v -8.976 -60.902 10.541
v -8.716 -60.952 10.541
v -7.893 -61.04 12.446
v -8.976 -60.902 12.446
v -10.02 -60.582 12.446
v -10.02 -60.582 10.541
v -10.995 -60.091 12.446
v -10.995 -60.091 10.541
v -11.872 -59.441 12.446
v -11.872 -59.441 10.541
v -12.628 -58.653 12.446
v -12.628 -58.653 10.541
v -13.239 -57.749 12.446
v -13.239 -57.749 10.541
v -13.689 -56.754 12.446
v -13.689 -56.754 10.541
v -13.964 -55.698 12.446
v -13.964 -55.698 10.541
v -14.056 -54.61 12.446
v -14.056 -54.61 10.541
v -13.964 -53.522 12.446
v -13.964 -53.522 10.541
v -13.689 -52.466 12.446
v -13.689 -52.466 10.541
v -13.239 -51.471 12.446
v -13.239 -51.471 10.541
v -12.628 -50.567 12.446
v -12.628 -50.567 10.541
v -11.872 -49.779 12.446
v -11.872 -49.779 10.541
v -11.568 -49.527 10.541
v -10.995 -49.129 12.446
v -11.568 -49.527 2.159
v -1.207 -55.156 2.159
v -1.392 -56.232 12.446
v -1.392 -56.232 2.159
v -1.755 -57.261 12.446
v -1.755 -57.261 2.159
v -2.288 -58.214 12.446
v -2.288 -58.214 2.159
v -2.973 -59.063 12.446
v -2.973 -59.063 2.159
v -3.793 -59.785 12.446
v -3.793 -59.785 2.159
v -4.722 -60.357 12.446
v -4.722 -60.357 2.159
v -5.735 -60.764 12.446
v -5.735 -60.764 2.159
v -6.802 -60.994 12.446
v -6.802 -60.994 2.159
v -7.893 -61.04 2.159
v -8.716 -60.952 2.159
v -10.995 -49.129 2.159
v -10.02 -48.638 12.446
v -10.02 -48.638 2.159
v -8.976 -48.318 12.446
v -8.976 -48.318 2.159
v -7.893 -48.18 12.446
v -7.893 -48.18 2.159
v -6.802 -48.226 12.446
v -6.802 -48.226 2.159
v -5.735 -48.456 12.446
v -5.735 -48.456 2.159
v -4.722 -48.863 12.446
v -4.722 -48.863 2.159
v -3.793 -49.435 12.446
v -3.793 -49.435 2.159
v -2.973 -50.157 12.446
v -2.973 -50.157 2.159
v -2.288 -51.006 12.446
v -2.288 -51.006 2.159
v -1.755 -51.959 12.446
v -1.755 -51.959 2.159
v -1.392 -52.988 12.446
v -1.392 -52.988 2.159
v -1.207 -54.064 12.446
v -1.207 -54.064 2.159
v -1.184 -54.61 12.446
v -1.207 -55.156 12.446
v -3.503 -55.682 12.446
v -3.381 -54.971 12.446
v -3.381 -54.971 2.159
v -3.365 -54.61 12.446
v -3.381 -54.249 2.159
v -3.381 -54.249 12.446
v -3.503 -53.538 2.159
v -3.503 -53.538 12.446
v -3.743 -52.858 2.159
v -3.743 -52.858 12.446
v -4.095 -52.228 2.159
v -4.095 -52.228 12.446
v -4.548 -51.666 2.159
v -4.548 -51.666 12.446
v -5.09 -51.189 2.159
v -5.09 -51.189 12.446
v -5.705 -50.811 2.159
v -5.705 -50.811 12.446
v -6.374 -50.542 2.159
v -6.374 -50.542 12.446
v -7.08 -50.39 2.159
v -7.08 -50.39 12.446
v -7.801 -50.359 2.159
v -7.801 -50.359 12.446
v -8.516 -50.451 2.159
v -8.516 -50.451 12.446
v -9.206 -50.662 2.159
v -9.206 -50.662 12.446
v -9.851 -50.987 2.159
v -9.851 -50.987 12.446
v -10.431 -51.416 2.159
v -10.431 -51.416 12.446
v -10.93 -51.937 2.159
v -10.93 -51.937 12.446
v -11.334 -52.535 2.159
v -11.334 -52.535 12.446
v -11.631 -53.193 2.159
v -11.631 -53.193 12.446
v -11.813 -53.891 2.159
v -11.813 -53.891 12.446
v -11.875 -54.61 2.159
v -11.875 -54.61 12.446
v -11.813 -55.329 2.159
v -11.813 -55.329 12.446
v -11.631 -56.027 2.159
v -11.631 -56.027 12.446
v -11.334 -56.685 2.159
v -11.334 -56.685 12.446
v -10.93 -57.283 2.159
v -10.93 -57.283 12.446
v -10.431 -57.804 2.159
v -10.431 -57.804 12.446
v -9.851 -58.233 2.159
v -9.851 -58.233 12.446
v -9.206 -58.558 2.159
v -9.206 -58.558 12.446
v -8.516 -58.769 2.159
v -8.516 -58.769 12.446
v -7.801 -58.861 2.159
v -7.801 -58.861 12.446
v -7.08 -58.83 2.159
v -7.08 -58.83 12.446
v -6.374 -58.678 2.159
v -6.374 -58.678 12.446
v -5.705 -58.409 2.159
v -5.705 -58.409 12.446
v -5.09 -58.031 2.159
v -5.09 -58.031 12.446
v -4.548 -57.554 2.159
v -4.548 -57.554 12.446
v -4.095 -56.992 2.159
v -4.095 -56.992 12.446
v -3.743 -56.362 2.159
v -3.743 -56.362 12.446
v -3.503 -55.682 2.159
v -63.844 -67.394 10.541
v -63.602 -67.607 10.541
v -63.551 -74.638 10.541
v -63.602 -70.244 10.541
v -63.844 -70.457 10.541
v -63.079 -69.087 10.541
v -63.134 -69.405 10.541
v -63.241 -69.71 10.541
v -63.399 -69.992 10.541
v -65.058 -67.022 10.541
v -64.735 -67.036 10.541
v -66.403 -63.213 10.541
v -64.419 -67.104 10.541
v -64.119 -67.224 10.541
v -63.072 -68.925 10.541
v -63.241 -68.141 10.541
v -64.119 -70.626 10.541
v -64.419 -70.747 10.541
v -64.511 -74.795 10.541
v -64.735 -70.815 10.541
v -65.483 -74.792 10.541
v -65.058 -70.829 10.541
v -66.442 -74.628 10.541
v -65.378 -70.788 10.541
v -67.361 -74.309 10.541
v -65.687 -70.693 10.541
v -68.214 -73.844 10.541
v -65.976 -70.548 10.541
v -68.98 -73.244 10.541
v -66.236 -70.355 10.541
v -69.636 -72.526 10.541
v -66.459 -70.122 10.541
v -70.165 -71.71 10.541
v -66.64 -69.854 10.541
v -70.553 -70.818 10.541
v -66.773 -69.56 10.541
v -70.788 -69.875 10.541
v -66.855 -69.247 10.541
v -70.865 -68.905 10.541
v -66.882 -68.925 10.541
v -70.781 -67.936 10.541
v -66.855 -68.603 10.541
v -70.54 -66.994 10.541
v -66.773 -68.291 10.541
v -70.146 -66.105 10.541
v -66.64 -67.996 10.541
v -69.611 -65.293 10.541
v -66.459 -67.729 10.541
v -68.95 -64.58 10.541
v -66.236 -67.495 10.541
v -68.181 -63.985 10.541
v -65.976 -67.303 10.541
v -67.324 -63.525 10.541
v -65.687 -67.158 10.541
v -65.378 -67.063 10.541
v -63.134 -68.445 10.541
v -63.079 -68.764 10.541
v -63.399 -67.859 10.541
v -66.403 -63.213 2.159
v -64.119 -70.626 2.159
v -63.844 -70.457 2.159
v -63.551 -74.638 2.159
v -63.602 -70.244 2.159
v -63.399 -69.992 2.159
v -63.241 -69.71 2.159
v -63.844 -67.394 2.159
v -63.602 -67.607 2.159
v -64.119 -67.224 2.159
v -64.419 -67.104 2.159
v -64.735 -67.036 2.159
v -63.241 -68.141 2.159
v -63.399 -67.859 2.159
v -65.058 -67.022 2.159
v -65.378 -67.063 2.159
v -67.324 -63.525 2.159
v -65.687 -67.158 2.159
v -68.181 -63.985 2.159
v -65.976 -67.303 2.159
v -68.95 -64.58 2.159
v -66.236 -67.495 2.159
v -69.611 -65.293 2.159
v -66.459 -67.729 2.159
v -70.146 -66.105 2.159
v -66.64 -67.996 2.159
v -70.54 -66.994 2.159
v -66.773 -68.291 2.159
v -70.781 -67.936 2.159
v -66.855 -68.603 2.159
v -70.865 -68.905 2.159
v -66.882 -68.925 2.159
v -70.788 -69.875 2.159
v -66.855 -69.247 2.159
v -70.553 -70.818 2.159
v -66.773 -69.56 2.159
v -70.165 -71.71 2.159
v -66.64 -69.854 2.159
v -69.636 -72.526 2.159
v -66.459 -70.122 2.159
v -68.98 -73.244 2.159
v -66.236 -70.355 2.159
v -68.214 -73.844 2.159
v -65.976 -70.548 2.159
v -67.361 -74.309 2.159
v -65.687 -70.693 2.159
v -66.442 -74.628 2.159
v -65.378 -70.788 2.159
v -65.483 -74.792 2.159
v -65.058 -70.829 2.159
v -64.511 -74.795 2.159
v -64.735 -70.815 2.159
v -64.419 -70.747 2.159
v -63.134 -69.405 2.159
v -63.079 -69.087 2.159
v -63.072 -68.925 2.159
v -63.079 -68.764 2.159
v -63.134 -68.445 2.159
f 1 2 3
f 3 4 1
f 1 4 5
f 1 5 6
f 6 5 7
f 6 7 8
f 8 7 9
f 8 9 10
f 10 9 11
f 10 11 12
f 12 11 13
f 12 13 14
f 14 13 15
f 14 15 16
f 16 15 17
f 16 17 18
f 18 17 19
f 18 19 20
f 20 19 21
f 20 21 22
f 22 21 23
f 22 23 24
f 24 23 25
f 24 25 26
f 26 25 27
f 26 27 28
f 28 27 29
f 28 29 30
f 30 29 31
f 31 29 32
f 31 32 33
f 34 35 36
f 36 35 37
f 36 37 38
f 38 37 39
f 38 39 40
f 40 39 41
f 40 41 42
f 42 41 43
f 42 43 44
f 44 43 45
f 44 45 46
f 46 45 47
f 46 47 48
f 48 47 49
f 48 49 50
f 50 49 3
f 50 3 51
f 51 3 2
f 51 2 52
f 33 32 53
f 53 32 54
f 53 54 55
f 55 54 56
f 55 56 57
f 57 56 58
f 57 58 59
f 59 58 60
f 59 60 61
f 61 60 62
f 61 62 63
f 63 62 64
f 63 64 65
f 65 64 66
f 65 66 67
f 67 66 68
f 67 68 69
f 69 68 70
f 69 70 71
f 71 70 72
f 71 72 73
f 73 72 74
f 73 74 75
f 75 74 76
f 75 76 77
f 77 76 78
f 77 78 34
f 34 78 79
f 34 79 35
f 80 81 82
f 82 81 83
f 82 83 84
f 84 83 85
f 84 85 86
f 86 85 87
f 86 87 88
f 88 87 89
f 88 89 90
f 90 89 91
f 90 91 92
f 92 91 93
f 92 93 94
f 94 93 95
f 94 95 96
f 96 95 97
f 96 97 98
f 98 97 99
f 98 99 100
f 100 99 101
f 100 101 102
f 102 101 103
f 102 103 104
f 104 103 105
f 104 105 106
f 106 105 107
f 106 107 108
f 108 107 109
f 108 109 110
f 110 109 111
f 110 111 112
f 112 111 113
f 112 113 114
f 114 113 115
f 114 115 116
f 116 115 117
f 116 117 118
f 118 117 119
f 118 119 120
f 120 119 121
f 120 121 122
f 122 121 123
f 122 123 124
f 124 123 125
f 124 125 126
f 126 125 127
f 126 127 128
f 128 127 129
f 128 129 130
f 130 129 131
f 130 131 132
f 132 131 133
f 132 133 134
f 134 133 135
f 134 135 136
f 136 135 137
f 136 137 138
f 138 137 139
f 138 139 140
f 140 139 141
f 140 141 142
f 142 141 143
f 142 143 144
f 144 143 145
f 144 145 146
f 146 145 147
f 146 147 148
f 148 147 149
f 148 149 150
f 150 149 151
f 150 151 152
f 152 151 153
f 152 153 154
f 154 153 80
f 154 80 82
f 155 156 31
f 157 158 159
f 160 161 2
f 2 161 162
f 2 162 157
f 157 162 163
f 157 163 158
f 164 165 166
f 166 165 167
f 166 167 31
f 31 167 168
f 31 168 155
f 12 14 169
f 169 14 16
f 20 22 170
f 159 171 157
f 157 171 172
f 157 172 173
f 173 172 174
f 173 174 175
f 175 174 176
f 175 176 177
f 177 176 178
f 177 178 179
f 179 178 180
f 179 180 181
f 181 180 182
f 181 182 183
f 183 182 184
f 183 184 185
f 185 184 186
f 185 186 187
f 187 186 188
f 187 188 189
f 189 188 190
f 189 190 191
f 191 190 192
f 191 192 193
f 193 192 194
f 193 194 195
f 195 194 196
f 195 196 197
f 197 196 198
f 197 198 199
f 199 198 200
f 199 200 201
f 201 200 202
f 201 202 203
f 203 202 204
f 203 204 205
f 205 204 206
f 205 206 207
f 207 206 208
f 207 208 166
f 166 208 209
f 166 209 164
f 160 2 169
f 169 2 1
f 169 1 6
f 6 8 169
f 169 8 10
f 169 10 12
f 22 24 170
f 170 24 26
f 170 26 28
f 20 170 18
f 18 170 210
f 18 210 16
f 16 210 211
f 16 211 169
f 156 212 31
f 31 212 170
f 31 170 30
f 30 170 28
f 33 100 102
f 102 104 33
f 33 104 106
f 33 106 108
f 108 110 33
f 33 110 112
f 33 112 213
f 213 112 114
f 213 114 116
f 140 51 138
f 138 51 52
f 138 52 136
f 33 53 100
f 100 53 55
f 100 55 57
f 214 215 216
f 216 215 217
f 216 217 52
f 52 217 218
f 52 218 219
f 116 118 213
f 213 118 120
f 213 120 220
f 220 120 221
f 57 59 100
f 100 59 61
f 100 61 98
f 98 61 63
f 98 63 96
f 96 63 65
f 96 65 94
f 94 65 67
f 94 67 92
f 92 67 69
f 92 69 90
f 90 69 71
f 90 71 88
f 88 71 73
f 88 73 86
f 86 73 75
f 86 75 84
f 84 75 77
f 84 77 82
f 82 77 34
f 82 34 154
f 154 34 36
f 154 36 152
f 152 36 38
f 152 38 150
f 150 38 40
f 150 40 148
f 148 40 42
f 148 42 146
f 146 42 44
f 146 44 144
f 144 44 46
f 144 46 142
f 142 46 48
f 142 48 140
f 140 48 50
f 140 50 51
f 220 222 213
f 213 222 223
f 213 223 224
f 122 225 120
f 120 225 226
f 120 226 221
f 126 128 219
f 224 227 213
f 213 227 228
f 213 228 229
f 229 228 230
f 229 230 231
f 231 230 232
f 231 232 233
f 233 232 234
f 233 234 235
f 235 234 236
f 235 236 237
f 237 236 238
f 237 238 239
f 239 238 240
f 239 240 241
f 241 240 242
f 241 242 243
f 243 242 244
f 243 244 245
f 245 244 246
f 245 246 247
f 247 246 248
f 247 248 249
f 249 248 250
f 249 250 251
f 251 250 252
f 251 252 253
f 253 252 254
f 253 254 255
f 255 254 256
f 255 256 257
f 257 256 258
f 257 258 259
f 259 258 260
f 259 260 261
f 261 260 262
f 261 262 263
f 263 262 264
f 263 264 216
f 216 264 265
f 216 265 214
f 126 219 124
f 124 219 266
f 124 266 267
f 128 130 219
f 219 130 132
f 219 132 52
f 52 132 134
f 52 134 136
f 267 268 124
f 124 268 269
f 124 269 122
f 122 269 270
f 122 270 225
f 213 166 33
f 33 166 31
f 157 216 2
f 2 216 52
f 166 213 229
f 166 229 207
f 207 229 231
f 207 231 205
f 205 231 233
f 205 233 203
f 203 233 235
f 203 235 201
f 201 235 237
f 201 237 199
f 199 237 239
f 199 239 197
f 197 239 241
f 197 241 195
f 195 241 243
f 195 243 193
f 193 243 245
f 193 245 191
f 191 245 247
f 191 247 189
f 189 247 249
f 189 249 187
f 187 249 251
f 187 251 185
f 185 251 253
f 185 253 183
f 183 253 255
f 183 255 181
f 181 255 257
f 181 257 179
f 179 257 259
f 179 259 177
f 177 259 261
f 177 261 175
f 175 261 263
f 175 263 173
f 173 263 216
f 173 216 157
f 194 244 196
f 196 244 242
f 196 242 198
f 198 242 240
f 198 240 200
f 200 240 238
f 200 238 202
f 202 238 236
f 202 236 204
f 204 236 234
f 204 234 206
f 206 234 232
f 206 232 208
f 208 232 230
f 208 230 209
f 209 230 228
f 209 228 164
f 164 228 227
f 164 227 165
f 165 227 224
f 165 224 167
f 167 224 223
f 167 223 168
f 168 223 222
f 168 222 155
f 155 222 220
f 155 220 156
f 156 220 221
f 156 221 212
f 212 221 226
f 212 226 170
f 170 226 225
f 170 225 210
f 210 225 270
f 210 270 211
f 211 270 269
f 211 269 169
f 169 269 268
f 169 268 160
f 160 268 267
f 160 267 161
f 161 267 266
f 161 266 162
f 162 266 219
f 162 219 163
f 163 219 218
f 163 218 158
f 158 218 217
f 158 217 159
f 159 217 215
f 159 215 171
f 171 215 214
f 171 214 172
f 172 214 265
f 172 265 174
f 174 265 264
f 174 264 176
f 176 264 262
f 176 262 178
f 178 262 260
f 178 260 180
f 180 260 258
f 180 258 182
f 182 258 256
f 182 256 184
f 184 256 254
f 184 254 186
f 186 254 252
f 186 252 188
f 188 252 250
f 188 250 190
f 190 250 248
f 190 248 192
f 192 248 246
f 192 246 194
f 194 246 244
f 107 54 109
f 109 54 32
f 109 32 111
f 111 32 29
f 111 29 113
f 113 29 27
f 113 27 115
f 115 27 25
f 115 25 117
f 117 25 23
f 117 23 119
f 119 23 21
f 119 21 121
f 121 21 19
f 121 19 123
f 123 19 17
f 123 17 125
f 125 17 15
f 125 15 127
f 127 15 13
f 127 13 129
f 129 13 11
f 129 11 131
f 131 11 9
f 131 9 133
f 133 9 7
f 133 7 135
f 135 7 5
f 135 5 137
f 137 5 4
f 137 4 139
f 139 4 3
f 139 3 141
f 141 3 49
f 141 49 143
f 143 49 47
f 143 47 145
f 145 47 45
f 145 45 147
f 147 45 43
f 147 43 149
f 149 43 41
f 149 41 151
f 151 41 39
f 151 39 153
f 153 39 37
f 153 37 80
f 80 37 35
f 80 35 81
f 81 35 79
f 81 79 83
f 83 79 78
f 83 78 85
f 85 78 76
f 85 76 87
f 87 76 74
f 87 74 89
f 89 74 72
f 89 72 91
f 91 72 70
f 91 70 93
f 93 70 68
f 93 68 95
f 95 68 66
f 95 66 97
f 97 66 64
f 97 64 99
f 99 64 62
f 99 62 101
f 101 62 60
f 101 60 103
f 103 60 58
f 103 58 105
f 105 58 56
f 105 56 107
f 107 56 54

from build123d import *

# Parameters (mm, degrees)
SKETCH3_R           = 4.2545
SKETCH3_R_2         = 1.905
BOSS_EXTRUDE1_DEPTH = 4.191
SKETCH4_R           = 6.436168178
SKETCH4_R_2         = 4.2545
BOSS_EXTRUDE2_DEPTH = 6.096
SKETCH6_R           = 6.436168178
CUT_EXTRUDE1_DEPTH  = 1.905


with BuildPart() as part:
    # Sketch3 → Boss-Extrude1 (new, symmetric)
    with BuildSketch(Plane.XY.offset(6.35)):
        with BuildLine():
            Line((-6.194175956, -60.322809185), (-63.551262793, -74.638203042))
            ThreePointArc((-63.551262793, -74.638203042), (-70.689896022, -70.351217901), (-66.402910881, -63.212584672))
            Line((-66.402910881, -63.212584672), (-9.045824044, -48.897190815))
            ThreePointArc((-9.045824044, -48.897190815), (-1.907190815, -53.184175956), (-6.194175956, -60.322809185))
        make_face()
        with Locations((-7.62, -54.61)):
            Circle(SKETCH3_R, mode=Mode.SUBTRACT)
        with Locations((-64.977086837, -68.925393857)):
            Circle(SKETCH3_R_2, mode=Mode.SUBTRACT)
    extrude(amount=BOSS_EXTRUDE1_DEPTH, both=True)

    # Sketch4 → Boss-Extrude2 (add, symmetric)
    with BuildSketch(Plane.XY.offset(6.35)):
        with Locations((-7.62, -54.61)):
            Circle(SKETCH4_R)
        with Locations((-7.62, -54.61)):
            Circle(SKETCH4_R_2, mode=Mode.SUBTRACT)
    extrude(amount=BOSS_EXTRUDE2_DEPTH, both=True)

    # Sketch6 → Cut-Extrude1 (cut)
    with BuildSketch(Plane(origin=(0, 0, 2.159), x_dir=(-1, 0, 0), z_dir=(0, 0, -1))):
        with Locations(Location((7.62, -54.61, 0), (0, 0, 52.168968889))):
            Circle(SKETCH6_R)
    extrude(amount=CUT_EXTRUDE1_DEPTH, mode=Mode.SUBTRACT)


solid = part.part
